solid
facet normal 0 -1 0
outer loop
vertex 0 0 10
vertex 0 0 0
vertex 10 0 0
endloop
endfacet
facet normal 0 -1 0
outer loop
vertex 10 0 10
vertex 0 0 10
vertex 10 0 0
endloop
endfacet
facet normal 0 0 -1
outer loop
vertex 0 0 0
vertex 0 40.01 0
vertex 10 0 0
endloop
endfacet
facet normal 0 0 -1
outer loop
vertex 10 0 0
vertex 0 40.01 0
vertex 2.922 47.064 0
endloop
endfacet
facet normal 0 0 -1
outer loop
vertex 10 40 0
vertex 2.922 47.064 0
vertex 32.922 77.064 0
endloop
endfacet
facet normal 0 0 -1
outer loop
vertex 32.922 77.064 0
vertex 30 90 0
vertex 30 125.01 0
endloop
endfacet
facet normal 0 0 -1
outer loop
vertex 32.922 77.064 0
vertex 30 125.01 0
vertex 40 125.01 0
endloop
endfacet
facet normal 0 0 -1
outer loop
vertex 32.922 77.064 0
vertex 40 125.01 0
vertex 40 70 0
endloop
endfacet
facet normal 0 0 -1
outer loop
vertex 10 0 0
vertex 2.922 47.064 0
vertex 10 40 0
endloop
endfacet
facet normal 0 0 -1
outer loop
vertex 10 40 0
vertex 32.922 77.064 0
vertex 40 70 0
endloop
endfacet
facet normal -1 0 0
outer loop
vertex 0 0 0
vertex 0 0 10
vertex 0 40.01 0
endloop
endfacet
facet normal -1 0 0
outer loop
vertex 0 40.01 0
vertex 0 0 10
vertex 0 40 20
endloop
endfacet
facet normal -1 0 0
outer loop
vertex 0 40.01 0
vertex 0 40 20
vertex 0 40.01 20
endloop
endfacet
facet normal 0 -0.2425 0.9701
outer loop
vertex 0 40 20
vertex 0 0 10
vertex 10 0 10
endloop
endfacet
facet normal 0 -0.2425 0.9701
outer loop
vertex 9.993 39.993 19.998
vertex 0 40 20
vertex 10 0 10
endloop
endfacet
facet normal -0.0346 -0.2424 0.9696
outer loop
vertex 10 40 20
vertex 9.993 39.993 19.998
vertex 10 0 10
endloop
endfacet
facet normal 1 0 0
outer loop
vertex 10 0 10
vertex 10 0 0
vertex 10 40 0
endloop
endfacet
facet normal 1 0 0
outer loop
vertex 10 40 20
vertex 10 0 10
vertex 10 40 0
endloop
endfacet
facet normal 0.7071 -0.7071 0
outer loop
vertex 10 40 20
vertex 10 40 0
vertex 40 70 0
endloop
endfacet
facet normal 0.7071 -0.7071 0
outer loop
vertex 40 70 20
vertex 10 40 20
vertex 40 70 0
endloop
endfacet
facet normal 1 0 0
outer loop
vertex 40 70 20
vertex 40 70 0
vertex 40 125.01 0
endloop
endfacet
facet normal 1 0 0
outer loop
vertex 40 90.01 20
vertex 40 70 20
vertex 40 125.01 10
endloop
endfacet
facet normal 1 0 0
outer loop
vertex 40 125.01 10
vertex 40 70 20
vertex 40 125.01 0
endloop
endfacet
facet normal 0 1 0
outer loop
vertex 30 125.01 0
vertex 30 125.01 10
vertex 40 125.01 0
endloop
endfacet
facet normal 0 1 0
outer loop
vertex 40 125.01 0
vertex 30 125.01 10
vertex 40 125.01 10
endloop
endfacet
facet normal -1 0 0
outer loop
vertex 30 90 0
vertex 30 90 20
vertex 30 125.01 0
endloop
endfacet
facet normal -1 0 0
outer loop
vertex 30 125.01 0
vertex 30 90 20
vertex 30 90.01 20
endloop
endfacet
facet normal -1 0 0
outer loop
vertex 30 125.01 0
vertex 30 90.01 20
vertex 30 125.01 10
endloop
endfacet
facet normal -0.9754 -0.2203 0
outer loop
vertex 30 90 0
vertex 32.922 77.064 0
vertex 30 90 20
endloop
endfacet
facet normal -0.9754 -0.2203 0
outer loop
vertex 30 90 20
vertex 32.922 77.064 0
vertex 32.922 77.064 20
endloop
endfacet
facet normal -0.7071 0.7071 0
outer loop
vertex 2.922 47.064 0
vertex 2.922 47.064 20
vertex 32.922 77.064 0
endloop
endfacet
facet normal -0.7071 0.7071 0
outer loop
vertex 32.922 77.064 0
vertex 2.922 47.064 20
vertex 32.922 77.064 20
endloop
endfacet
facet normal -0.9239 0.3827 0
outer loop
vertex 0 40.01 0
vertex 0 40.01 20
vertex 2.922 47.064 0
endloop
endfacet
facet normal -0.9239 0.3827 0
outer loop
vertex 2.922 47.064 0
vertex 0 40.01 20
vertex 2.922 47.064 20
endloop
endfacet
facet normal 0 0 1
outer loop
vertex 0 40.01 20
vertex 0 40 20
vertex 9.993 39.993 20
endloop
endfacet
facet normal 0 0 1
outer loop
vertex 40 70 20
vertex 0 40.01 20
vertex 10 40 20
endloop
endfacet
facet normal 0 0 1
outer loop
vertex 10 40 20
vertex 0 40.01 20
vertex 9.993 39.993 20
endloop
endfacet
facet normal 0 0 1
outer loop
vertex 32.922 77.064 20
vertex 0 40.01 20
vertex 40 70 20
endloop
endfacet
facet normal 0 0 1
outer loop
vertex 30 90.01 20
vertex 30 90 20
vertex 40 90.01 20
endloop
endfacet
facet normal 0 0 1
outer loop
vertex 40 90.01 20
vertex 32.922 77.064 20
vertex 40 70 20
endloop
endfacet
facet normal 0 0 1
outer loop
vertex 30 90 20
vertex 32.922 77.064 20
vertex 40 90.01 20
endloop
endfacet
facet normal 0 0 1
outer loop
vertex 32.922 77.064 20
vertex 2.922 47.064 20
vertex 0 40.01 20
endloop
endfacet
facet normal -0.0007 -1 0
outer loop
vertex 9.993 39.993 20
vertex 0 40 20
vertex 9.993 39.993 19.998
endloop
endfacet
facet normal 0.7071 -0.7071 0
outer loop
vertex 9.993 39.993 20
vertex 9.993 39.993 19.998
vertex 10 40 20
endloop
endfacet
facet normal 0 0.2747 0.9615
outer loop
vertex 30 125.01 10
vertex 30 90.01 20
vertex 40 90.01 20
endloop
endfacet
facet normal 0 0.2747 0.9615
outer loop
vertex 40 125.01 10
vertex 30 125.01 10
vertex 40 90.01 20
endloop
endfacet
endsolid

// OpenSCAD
// file: beams.scad
/* 
 * openscad beams library
 * create complex openscads objects from frames which are defining beams
 * (constructed like a ship body or airplane hull)
 *
 * https://github.com/Stemer114/openscad_beams
 * http://www.thingiverse.com/Stemer114/designs
 * 
 *    Copyright (C) 2016 Stemer114 (stemer114@merunka.de)
 *
 *    This program is free software: you can redistribute it and/or modify
 *    it under the terms of the GNU General Public License as published by
 *    the Free Software Foundation, either version 3 of the License, or
 *    (at your option) any later version.
 *
 *    This program is distributed in the hope that it will be useful,
 *    but WITHOUT ANY WARRANTY; without even the implied warranty of
 *    MERCHANTABILITY or FITNESS FOR A PARTICULAR PURPOSE.  See the
 *    GNU General Public License for more details.
 *
 *    You should have received a copy of the GNU General Public License
 *    along with this program.  If not, see <http://www.gnu.org/licenses/>.
 *

 * Credits: 
 *          for some of the examples
 *          MCAD Library - Polyholes Copyright 2011 Nophead (of RepRap fame)
 *          It is licensed under the terms of Creative Commons Attribution 3.0 Unported.
 *          https://github.com/SolidCode/MCAD/blob/master/polyholes.scad
 *
 *          BeamsVersion, libEcho and code structure inspired by 
 *          OpenSCAD Parts Library by randyy is licensed under the GNU - LGPL license. 
 *          http://www.thingiverse.com/thing:6021
 *
 */

//**** house keeping
//we define these as functions to avoid assignment problems from caller modules
function BeamsVersion() = 1.0;  //library version
function ep()=0.01;  //epsilon environment to avoid non-manifold objects


//**** module definitions

// a single rectangular frame, usually very thin
// params: w - width of frame (x direction)
//         h - height of frame (z direction)
//         d - thickness of frame (y direction, usually very thin, e.g. 0.1mm)
//         o - offset vector from origin (probably best to use x and y offsets only here for starters)
//         r - rotation vector (probably best to use only z rotation here for starters)
//         vec - vector interface, used instead of the named params
//         the vector must use the following structure (example)
//           w  h  rotation    offset        thickness
//          [3, 4, [0, 0, 90], [0, -1.5, 0], ep ],   //start (front center)
//         there is no checking other than length checking to branch in the interface
//         so better make sure the vector conforms
//         the vector interface allows you to define a list of vectors in your source file
//         and supply them all at once to the beam module (see below)
//         this probably makes more sense if you look at some of the example files
module frame(
        w = 10,  //width
        h = 10,  //height
        r = [0, 0, 0],  //rotation vector
        o = [0, 0, 0],   //offset vector
        d = ep(),  //thickness (normally very thin)
        vec = [],  //vector, default none
        )
{
    if ( len(vec)==5 ) {
        //use vector interface
        translate( vec[3] )
            rotate( vec[2] )
            cube([ vec[0], vec[4], vec[1] ]);
    } else {
        //use single param interface
        translate(o)
            rotate(r)
            cube([w, d, h]);
    }  //end else
}  //end module

// a single beam consisting of two frames at either end, connected by a hull
// to disable hull, use no_hull=true (for debugging)
// beam uses the vector interface (see above in module frame)
module beam(
        frame1 = [10, 10, [0, 0, 0], [0, 0, 0], ep() ],
        frame2 = [10, 10, [0, 0, 0], [0, 20, 0], ep() ],
        no_hull = false,   
        )
{
    if ( no_hull ) {
        frame(vec=frame1);
        frame(vec=frame2);
    } else {
        hull() {
            frame(vec=frame1);
            frame(vec=frame2);
        }  //end hull
    }  //end else
}  //end module

// a beam consisting of 2 or more frames connected by hulls
// uses the vector interface (see above)
// see example scad files in library source to get an idea how to use this
module beam_multi(frames=[], no_hull=false )
{
    if ( len(frames)<2 ) {
        echo("WARNING: beam_multi: number of frames too small (must be at least 2): ", len(frames) );
    } else {
        for ( frame = [0:len(frames)-2] ) {
            beam( frames[frame], frames[frame+1], no_hull=no_hull );
        } //end for

    }
}

/*************************************************
 * interface 
*/

libEcho=true;
if (libEcho!=false){ 
	echo("****************************************************************  ");
    echo(" beams scad library loaded.");
    echo(" Version: ", BeamsVersion() );
    echo(" usage: - include beams.scad in your project dir,");
    echo("        - then add include <beams.scad> to your script ");
	echo("        - to turn off this header, place libEcho=false; in your script");
    echo("        - see examples scad files to some inspiration")
	echo("****************************************************************  ");
}
// main file
/*
 * a collection of simple examples for beams library
 * example for using openscad beams library
 *
 */

ep = 0.01;  //epsilon environment

include <beams.scad>

//          w   h   rotation   offset    thickness
params = [ 
           [10, 10, [0, 0, 0], [0, 0, 0], ep ],
           [10, 20, [0, 0, 0], [0, 40, 0], ep ],
           [10, 20, [0, 0, 135], [10, 40, 0], ep ],
           [10, 20, [0, 0, 135], [40, 70, 0], ep ],
           [10, 20, [0, 0, 0], [30, 90, 0], ep ],
           [10, 10, [0, 0, 0], [30, 125, 0], ep ],
         ];

beam_multi(frames=params );
